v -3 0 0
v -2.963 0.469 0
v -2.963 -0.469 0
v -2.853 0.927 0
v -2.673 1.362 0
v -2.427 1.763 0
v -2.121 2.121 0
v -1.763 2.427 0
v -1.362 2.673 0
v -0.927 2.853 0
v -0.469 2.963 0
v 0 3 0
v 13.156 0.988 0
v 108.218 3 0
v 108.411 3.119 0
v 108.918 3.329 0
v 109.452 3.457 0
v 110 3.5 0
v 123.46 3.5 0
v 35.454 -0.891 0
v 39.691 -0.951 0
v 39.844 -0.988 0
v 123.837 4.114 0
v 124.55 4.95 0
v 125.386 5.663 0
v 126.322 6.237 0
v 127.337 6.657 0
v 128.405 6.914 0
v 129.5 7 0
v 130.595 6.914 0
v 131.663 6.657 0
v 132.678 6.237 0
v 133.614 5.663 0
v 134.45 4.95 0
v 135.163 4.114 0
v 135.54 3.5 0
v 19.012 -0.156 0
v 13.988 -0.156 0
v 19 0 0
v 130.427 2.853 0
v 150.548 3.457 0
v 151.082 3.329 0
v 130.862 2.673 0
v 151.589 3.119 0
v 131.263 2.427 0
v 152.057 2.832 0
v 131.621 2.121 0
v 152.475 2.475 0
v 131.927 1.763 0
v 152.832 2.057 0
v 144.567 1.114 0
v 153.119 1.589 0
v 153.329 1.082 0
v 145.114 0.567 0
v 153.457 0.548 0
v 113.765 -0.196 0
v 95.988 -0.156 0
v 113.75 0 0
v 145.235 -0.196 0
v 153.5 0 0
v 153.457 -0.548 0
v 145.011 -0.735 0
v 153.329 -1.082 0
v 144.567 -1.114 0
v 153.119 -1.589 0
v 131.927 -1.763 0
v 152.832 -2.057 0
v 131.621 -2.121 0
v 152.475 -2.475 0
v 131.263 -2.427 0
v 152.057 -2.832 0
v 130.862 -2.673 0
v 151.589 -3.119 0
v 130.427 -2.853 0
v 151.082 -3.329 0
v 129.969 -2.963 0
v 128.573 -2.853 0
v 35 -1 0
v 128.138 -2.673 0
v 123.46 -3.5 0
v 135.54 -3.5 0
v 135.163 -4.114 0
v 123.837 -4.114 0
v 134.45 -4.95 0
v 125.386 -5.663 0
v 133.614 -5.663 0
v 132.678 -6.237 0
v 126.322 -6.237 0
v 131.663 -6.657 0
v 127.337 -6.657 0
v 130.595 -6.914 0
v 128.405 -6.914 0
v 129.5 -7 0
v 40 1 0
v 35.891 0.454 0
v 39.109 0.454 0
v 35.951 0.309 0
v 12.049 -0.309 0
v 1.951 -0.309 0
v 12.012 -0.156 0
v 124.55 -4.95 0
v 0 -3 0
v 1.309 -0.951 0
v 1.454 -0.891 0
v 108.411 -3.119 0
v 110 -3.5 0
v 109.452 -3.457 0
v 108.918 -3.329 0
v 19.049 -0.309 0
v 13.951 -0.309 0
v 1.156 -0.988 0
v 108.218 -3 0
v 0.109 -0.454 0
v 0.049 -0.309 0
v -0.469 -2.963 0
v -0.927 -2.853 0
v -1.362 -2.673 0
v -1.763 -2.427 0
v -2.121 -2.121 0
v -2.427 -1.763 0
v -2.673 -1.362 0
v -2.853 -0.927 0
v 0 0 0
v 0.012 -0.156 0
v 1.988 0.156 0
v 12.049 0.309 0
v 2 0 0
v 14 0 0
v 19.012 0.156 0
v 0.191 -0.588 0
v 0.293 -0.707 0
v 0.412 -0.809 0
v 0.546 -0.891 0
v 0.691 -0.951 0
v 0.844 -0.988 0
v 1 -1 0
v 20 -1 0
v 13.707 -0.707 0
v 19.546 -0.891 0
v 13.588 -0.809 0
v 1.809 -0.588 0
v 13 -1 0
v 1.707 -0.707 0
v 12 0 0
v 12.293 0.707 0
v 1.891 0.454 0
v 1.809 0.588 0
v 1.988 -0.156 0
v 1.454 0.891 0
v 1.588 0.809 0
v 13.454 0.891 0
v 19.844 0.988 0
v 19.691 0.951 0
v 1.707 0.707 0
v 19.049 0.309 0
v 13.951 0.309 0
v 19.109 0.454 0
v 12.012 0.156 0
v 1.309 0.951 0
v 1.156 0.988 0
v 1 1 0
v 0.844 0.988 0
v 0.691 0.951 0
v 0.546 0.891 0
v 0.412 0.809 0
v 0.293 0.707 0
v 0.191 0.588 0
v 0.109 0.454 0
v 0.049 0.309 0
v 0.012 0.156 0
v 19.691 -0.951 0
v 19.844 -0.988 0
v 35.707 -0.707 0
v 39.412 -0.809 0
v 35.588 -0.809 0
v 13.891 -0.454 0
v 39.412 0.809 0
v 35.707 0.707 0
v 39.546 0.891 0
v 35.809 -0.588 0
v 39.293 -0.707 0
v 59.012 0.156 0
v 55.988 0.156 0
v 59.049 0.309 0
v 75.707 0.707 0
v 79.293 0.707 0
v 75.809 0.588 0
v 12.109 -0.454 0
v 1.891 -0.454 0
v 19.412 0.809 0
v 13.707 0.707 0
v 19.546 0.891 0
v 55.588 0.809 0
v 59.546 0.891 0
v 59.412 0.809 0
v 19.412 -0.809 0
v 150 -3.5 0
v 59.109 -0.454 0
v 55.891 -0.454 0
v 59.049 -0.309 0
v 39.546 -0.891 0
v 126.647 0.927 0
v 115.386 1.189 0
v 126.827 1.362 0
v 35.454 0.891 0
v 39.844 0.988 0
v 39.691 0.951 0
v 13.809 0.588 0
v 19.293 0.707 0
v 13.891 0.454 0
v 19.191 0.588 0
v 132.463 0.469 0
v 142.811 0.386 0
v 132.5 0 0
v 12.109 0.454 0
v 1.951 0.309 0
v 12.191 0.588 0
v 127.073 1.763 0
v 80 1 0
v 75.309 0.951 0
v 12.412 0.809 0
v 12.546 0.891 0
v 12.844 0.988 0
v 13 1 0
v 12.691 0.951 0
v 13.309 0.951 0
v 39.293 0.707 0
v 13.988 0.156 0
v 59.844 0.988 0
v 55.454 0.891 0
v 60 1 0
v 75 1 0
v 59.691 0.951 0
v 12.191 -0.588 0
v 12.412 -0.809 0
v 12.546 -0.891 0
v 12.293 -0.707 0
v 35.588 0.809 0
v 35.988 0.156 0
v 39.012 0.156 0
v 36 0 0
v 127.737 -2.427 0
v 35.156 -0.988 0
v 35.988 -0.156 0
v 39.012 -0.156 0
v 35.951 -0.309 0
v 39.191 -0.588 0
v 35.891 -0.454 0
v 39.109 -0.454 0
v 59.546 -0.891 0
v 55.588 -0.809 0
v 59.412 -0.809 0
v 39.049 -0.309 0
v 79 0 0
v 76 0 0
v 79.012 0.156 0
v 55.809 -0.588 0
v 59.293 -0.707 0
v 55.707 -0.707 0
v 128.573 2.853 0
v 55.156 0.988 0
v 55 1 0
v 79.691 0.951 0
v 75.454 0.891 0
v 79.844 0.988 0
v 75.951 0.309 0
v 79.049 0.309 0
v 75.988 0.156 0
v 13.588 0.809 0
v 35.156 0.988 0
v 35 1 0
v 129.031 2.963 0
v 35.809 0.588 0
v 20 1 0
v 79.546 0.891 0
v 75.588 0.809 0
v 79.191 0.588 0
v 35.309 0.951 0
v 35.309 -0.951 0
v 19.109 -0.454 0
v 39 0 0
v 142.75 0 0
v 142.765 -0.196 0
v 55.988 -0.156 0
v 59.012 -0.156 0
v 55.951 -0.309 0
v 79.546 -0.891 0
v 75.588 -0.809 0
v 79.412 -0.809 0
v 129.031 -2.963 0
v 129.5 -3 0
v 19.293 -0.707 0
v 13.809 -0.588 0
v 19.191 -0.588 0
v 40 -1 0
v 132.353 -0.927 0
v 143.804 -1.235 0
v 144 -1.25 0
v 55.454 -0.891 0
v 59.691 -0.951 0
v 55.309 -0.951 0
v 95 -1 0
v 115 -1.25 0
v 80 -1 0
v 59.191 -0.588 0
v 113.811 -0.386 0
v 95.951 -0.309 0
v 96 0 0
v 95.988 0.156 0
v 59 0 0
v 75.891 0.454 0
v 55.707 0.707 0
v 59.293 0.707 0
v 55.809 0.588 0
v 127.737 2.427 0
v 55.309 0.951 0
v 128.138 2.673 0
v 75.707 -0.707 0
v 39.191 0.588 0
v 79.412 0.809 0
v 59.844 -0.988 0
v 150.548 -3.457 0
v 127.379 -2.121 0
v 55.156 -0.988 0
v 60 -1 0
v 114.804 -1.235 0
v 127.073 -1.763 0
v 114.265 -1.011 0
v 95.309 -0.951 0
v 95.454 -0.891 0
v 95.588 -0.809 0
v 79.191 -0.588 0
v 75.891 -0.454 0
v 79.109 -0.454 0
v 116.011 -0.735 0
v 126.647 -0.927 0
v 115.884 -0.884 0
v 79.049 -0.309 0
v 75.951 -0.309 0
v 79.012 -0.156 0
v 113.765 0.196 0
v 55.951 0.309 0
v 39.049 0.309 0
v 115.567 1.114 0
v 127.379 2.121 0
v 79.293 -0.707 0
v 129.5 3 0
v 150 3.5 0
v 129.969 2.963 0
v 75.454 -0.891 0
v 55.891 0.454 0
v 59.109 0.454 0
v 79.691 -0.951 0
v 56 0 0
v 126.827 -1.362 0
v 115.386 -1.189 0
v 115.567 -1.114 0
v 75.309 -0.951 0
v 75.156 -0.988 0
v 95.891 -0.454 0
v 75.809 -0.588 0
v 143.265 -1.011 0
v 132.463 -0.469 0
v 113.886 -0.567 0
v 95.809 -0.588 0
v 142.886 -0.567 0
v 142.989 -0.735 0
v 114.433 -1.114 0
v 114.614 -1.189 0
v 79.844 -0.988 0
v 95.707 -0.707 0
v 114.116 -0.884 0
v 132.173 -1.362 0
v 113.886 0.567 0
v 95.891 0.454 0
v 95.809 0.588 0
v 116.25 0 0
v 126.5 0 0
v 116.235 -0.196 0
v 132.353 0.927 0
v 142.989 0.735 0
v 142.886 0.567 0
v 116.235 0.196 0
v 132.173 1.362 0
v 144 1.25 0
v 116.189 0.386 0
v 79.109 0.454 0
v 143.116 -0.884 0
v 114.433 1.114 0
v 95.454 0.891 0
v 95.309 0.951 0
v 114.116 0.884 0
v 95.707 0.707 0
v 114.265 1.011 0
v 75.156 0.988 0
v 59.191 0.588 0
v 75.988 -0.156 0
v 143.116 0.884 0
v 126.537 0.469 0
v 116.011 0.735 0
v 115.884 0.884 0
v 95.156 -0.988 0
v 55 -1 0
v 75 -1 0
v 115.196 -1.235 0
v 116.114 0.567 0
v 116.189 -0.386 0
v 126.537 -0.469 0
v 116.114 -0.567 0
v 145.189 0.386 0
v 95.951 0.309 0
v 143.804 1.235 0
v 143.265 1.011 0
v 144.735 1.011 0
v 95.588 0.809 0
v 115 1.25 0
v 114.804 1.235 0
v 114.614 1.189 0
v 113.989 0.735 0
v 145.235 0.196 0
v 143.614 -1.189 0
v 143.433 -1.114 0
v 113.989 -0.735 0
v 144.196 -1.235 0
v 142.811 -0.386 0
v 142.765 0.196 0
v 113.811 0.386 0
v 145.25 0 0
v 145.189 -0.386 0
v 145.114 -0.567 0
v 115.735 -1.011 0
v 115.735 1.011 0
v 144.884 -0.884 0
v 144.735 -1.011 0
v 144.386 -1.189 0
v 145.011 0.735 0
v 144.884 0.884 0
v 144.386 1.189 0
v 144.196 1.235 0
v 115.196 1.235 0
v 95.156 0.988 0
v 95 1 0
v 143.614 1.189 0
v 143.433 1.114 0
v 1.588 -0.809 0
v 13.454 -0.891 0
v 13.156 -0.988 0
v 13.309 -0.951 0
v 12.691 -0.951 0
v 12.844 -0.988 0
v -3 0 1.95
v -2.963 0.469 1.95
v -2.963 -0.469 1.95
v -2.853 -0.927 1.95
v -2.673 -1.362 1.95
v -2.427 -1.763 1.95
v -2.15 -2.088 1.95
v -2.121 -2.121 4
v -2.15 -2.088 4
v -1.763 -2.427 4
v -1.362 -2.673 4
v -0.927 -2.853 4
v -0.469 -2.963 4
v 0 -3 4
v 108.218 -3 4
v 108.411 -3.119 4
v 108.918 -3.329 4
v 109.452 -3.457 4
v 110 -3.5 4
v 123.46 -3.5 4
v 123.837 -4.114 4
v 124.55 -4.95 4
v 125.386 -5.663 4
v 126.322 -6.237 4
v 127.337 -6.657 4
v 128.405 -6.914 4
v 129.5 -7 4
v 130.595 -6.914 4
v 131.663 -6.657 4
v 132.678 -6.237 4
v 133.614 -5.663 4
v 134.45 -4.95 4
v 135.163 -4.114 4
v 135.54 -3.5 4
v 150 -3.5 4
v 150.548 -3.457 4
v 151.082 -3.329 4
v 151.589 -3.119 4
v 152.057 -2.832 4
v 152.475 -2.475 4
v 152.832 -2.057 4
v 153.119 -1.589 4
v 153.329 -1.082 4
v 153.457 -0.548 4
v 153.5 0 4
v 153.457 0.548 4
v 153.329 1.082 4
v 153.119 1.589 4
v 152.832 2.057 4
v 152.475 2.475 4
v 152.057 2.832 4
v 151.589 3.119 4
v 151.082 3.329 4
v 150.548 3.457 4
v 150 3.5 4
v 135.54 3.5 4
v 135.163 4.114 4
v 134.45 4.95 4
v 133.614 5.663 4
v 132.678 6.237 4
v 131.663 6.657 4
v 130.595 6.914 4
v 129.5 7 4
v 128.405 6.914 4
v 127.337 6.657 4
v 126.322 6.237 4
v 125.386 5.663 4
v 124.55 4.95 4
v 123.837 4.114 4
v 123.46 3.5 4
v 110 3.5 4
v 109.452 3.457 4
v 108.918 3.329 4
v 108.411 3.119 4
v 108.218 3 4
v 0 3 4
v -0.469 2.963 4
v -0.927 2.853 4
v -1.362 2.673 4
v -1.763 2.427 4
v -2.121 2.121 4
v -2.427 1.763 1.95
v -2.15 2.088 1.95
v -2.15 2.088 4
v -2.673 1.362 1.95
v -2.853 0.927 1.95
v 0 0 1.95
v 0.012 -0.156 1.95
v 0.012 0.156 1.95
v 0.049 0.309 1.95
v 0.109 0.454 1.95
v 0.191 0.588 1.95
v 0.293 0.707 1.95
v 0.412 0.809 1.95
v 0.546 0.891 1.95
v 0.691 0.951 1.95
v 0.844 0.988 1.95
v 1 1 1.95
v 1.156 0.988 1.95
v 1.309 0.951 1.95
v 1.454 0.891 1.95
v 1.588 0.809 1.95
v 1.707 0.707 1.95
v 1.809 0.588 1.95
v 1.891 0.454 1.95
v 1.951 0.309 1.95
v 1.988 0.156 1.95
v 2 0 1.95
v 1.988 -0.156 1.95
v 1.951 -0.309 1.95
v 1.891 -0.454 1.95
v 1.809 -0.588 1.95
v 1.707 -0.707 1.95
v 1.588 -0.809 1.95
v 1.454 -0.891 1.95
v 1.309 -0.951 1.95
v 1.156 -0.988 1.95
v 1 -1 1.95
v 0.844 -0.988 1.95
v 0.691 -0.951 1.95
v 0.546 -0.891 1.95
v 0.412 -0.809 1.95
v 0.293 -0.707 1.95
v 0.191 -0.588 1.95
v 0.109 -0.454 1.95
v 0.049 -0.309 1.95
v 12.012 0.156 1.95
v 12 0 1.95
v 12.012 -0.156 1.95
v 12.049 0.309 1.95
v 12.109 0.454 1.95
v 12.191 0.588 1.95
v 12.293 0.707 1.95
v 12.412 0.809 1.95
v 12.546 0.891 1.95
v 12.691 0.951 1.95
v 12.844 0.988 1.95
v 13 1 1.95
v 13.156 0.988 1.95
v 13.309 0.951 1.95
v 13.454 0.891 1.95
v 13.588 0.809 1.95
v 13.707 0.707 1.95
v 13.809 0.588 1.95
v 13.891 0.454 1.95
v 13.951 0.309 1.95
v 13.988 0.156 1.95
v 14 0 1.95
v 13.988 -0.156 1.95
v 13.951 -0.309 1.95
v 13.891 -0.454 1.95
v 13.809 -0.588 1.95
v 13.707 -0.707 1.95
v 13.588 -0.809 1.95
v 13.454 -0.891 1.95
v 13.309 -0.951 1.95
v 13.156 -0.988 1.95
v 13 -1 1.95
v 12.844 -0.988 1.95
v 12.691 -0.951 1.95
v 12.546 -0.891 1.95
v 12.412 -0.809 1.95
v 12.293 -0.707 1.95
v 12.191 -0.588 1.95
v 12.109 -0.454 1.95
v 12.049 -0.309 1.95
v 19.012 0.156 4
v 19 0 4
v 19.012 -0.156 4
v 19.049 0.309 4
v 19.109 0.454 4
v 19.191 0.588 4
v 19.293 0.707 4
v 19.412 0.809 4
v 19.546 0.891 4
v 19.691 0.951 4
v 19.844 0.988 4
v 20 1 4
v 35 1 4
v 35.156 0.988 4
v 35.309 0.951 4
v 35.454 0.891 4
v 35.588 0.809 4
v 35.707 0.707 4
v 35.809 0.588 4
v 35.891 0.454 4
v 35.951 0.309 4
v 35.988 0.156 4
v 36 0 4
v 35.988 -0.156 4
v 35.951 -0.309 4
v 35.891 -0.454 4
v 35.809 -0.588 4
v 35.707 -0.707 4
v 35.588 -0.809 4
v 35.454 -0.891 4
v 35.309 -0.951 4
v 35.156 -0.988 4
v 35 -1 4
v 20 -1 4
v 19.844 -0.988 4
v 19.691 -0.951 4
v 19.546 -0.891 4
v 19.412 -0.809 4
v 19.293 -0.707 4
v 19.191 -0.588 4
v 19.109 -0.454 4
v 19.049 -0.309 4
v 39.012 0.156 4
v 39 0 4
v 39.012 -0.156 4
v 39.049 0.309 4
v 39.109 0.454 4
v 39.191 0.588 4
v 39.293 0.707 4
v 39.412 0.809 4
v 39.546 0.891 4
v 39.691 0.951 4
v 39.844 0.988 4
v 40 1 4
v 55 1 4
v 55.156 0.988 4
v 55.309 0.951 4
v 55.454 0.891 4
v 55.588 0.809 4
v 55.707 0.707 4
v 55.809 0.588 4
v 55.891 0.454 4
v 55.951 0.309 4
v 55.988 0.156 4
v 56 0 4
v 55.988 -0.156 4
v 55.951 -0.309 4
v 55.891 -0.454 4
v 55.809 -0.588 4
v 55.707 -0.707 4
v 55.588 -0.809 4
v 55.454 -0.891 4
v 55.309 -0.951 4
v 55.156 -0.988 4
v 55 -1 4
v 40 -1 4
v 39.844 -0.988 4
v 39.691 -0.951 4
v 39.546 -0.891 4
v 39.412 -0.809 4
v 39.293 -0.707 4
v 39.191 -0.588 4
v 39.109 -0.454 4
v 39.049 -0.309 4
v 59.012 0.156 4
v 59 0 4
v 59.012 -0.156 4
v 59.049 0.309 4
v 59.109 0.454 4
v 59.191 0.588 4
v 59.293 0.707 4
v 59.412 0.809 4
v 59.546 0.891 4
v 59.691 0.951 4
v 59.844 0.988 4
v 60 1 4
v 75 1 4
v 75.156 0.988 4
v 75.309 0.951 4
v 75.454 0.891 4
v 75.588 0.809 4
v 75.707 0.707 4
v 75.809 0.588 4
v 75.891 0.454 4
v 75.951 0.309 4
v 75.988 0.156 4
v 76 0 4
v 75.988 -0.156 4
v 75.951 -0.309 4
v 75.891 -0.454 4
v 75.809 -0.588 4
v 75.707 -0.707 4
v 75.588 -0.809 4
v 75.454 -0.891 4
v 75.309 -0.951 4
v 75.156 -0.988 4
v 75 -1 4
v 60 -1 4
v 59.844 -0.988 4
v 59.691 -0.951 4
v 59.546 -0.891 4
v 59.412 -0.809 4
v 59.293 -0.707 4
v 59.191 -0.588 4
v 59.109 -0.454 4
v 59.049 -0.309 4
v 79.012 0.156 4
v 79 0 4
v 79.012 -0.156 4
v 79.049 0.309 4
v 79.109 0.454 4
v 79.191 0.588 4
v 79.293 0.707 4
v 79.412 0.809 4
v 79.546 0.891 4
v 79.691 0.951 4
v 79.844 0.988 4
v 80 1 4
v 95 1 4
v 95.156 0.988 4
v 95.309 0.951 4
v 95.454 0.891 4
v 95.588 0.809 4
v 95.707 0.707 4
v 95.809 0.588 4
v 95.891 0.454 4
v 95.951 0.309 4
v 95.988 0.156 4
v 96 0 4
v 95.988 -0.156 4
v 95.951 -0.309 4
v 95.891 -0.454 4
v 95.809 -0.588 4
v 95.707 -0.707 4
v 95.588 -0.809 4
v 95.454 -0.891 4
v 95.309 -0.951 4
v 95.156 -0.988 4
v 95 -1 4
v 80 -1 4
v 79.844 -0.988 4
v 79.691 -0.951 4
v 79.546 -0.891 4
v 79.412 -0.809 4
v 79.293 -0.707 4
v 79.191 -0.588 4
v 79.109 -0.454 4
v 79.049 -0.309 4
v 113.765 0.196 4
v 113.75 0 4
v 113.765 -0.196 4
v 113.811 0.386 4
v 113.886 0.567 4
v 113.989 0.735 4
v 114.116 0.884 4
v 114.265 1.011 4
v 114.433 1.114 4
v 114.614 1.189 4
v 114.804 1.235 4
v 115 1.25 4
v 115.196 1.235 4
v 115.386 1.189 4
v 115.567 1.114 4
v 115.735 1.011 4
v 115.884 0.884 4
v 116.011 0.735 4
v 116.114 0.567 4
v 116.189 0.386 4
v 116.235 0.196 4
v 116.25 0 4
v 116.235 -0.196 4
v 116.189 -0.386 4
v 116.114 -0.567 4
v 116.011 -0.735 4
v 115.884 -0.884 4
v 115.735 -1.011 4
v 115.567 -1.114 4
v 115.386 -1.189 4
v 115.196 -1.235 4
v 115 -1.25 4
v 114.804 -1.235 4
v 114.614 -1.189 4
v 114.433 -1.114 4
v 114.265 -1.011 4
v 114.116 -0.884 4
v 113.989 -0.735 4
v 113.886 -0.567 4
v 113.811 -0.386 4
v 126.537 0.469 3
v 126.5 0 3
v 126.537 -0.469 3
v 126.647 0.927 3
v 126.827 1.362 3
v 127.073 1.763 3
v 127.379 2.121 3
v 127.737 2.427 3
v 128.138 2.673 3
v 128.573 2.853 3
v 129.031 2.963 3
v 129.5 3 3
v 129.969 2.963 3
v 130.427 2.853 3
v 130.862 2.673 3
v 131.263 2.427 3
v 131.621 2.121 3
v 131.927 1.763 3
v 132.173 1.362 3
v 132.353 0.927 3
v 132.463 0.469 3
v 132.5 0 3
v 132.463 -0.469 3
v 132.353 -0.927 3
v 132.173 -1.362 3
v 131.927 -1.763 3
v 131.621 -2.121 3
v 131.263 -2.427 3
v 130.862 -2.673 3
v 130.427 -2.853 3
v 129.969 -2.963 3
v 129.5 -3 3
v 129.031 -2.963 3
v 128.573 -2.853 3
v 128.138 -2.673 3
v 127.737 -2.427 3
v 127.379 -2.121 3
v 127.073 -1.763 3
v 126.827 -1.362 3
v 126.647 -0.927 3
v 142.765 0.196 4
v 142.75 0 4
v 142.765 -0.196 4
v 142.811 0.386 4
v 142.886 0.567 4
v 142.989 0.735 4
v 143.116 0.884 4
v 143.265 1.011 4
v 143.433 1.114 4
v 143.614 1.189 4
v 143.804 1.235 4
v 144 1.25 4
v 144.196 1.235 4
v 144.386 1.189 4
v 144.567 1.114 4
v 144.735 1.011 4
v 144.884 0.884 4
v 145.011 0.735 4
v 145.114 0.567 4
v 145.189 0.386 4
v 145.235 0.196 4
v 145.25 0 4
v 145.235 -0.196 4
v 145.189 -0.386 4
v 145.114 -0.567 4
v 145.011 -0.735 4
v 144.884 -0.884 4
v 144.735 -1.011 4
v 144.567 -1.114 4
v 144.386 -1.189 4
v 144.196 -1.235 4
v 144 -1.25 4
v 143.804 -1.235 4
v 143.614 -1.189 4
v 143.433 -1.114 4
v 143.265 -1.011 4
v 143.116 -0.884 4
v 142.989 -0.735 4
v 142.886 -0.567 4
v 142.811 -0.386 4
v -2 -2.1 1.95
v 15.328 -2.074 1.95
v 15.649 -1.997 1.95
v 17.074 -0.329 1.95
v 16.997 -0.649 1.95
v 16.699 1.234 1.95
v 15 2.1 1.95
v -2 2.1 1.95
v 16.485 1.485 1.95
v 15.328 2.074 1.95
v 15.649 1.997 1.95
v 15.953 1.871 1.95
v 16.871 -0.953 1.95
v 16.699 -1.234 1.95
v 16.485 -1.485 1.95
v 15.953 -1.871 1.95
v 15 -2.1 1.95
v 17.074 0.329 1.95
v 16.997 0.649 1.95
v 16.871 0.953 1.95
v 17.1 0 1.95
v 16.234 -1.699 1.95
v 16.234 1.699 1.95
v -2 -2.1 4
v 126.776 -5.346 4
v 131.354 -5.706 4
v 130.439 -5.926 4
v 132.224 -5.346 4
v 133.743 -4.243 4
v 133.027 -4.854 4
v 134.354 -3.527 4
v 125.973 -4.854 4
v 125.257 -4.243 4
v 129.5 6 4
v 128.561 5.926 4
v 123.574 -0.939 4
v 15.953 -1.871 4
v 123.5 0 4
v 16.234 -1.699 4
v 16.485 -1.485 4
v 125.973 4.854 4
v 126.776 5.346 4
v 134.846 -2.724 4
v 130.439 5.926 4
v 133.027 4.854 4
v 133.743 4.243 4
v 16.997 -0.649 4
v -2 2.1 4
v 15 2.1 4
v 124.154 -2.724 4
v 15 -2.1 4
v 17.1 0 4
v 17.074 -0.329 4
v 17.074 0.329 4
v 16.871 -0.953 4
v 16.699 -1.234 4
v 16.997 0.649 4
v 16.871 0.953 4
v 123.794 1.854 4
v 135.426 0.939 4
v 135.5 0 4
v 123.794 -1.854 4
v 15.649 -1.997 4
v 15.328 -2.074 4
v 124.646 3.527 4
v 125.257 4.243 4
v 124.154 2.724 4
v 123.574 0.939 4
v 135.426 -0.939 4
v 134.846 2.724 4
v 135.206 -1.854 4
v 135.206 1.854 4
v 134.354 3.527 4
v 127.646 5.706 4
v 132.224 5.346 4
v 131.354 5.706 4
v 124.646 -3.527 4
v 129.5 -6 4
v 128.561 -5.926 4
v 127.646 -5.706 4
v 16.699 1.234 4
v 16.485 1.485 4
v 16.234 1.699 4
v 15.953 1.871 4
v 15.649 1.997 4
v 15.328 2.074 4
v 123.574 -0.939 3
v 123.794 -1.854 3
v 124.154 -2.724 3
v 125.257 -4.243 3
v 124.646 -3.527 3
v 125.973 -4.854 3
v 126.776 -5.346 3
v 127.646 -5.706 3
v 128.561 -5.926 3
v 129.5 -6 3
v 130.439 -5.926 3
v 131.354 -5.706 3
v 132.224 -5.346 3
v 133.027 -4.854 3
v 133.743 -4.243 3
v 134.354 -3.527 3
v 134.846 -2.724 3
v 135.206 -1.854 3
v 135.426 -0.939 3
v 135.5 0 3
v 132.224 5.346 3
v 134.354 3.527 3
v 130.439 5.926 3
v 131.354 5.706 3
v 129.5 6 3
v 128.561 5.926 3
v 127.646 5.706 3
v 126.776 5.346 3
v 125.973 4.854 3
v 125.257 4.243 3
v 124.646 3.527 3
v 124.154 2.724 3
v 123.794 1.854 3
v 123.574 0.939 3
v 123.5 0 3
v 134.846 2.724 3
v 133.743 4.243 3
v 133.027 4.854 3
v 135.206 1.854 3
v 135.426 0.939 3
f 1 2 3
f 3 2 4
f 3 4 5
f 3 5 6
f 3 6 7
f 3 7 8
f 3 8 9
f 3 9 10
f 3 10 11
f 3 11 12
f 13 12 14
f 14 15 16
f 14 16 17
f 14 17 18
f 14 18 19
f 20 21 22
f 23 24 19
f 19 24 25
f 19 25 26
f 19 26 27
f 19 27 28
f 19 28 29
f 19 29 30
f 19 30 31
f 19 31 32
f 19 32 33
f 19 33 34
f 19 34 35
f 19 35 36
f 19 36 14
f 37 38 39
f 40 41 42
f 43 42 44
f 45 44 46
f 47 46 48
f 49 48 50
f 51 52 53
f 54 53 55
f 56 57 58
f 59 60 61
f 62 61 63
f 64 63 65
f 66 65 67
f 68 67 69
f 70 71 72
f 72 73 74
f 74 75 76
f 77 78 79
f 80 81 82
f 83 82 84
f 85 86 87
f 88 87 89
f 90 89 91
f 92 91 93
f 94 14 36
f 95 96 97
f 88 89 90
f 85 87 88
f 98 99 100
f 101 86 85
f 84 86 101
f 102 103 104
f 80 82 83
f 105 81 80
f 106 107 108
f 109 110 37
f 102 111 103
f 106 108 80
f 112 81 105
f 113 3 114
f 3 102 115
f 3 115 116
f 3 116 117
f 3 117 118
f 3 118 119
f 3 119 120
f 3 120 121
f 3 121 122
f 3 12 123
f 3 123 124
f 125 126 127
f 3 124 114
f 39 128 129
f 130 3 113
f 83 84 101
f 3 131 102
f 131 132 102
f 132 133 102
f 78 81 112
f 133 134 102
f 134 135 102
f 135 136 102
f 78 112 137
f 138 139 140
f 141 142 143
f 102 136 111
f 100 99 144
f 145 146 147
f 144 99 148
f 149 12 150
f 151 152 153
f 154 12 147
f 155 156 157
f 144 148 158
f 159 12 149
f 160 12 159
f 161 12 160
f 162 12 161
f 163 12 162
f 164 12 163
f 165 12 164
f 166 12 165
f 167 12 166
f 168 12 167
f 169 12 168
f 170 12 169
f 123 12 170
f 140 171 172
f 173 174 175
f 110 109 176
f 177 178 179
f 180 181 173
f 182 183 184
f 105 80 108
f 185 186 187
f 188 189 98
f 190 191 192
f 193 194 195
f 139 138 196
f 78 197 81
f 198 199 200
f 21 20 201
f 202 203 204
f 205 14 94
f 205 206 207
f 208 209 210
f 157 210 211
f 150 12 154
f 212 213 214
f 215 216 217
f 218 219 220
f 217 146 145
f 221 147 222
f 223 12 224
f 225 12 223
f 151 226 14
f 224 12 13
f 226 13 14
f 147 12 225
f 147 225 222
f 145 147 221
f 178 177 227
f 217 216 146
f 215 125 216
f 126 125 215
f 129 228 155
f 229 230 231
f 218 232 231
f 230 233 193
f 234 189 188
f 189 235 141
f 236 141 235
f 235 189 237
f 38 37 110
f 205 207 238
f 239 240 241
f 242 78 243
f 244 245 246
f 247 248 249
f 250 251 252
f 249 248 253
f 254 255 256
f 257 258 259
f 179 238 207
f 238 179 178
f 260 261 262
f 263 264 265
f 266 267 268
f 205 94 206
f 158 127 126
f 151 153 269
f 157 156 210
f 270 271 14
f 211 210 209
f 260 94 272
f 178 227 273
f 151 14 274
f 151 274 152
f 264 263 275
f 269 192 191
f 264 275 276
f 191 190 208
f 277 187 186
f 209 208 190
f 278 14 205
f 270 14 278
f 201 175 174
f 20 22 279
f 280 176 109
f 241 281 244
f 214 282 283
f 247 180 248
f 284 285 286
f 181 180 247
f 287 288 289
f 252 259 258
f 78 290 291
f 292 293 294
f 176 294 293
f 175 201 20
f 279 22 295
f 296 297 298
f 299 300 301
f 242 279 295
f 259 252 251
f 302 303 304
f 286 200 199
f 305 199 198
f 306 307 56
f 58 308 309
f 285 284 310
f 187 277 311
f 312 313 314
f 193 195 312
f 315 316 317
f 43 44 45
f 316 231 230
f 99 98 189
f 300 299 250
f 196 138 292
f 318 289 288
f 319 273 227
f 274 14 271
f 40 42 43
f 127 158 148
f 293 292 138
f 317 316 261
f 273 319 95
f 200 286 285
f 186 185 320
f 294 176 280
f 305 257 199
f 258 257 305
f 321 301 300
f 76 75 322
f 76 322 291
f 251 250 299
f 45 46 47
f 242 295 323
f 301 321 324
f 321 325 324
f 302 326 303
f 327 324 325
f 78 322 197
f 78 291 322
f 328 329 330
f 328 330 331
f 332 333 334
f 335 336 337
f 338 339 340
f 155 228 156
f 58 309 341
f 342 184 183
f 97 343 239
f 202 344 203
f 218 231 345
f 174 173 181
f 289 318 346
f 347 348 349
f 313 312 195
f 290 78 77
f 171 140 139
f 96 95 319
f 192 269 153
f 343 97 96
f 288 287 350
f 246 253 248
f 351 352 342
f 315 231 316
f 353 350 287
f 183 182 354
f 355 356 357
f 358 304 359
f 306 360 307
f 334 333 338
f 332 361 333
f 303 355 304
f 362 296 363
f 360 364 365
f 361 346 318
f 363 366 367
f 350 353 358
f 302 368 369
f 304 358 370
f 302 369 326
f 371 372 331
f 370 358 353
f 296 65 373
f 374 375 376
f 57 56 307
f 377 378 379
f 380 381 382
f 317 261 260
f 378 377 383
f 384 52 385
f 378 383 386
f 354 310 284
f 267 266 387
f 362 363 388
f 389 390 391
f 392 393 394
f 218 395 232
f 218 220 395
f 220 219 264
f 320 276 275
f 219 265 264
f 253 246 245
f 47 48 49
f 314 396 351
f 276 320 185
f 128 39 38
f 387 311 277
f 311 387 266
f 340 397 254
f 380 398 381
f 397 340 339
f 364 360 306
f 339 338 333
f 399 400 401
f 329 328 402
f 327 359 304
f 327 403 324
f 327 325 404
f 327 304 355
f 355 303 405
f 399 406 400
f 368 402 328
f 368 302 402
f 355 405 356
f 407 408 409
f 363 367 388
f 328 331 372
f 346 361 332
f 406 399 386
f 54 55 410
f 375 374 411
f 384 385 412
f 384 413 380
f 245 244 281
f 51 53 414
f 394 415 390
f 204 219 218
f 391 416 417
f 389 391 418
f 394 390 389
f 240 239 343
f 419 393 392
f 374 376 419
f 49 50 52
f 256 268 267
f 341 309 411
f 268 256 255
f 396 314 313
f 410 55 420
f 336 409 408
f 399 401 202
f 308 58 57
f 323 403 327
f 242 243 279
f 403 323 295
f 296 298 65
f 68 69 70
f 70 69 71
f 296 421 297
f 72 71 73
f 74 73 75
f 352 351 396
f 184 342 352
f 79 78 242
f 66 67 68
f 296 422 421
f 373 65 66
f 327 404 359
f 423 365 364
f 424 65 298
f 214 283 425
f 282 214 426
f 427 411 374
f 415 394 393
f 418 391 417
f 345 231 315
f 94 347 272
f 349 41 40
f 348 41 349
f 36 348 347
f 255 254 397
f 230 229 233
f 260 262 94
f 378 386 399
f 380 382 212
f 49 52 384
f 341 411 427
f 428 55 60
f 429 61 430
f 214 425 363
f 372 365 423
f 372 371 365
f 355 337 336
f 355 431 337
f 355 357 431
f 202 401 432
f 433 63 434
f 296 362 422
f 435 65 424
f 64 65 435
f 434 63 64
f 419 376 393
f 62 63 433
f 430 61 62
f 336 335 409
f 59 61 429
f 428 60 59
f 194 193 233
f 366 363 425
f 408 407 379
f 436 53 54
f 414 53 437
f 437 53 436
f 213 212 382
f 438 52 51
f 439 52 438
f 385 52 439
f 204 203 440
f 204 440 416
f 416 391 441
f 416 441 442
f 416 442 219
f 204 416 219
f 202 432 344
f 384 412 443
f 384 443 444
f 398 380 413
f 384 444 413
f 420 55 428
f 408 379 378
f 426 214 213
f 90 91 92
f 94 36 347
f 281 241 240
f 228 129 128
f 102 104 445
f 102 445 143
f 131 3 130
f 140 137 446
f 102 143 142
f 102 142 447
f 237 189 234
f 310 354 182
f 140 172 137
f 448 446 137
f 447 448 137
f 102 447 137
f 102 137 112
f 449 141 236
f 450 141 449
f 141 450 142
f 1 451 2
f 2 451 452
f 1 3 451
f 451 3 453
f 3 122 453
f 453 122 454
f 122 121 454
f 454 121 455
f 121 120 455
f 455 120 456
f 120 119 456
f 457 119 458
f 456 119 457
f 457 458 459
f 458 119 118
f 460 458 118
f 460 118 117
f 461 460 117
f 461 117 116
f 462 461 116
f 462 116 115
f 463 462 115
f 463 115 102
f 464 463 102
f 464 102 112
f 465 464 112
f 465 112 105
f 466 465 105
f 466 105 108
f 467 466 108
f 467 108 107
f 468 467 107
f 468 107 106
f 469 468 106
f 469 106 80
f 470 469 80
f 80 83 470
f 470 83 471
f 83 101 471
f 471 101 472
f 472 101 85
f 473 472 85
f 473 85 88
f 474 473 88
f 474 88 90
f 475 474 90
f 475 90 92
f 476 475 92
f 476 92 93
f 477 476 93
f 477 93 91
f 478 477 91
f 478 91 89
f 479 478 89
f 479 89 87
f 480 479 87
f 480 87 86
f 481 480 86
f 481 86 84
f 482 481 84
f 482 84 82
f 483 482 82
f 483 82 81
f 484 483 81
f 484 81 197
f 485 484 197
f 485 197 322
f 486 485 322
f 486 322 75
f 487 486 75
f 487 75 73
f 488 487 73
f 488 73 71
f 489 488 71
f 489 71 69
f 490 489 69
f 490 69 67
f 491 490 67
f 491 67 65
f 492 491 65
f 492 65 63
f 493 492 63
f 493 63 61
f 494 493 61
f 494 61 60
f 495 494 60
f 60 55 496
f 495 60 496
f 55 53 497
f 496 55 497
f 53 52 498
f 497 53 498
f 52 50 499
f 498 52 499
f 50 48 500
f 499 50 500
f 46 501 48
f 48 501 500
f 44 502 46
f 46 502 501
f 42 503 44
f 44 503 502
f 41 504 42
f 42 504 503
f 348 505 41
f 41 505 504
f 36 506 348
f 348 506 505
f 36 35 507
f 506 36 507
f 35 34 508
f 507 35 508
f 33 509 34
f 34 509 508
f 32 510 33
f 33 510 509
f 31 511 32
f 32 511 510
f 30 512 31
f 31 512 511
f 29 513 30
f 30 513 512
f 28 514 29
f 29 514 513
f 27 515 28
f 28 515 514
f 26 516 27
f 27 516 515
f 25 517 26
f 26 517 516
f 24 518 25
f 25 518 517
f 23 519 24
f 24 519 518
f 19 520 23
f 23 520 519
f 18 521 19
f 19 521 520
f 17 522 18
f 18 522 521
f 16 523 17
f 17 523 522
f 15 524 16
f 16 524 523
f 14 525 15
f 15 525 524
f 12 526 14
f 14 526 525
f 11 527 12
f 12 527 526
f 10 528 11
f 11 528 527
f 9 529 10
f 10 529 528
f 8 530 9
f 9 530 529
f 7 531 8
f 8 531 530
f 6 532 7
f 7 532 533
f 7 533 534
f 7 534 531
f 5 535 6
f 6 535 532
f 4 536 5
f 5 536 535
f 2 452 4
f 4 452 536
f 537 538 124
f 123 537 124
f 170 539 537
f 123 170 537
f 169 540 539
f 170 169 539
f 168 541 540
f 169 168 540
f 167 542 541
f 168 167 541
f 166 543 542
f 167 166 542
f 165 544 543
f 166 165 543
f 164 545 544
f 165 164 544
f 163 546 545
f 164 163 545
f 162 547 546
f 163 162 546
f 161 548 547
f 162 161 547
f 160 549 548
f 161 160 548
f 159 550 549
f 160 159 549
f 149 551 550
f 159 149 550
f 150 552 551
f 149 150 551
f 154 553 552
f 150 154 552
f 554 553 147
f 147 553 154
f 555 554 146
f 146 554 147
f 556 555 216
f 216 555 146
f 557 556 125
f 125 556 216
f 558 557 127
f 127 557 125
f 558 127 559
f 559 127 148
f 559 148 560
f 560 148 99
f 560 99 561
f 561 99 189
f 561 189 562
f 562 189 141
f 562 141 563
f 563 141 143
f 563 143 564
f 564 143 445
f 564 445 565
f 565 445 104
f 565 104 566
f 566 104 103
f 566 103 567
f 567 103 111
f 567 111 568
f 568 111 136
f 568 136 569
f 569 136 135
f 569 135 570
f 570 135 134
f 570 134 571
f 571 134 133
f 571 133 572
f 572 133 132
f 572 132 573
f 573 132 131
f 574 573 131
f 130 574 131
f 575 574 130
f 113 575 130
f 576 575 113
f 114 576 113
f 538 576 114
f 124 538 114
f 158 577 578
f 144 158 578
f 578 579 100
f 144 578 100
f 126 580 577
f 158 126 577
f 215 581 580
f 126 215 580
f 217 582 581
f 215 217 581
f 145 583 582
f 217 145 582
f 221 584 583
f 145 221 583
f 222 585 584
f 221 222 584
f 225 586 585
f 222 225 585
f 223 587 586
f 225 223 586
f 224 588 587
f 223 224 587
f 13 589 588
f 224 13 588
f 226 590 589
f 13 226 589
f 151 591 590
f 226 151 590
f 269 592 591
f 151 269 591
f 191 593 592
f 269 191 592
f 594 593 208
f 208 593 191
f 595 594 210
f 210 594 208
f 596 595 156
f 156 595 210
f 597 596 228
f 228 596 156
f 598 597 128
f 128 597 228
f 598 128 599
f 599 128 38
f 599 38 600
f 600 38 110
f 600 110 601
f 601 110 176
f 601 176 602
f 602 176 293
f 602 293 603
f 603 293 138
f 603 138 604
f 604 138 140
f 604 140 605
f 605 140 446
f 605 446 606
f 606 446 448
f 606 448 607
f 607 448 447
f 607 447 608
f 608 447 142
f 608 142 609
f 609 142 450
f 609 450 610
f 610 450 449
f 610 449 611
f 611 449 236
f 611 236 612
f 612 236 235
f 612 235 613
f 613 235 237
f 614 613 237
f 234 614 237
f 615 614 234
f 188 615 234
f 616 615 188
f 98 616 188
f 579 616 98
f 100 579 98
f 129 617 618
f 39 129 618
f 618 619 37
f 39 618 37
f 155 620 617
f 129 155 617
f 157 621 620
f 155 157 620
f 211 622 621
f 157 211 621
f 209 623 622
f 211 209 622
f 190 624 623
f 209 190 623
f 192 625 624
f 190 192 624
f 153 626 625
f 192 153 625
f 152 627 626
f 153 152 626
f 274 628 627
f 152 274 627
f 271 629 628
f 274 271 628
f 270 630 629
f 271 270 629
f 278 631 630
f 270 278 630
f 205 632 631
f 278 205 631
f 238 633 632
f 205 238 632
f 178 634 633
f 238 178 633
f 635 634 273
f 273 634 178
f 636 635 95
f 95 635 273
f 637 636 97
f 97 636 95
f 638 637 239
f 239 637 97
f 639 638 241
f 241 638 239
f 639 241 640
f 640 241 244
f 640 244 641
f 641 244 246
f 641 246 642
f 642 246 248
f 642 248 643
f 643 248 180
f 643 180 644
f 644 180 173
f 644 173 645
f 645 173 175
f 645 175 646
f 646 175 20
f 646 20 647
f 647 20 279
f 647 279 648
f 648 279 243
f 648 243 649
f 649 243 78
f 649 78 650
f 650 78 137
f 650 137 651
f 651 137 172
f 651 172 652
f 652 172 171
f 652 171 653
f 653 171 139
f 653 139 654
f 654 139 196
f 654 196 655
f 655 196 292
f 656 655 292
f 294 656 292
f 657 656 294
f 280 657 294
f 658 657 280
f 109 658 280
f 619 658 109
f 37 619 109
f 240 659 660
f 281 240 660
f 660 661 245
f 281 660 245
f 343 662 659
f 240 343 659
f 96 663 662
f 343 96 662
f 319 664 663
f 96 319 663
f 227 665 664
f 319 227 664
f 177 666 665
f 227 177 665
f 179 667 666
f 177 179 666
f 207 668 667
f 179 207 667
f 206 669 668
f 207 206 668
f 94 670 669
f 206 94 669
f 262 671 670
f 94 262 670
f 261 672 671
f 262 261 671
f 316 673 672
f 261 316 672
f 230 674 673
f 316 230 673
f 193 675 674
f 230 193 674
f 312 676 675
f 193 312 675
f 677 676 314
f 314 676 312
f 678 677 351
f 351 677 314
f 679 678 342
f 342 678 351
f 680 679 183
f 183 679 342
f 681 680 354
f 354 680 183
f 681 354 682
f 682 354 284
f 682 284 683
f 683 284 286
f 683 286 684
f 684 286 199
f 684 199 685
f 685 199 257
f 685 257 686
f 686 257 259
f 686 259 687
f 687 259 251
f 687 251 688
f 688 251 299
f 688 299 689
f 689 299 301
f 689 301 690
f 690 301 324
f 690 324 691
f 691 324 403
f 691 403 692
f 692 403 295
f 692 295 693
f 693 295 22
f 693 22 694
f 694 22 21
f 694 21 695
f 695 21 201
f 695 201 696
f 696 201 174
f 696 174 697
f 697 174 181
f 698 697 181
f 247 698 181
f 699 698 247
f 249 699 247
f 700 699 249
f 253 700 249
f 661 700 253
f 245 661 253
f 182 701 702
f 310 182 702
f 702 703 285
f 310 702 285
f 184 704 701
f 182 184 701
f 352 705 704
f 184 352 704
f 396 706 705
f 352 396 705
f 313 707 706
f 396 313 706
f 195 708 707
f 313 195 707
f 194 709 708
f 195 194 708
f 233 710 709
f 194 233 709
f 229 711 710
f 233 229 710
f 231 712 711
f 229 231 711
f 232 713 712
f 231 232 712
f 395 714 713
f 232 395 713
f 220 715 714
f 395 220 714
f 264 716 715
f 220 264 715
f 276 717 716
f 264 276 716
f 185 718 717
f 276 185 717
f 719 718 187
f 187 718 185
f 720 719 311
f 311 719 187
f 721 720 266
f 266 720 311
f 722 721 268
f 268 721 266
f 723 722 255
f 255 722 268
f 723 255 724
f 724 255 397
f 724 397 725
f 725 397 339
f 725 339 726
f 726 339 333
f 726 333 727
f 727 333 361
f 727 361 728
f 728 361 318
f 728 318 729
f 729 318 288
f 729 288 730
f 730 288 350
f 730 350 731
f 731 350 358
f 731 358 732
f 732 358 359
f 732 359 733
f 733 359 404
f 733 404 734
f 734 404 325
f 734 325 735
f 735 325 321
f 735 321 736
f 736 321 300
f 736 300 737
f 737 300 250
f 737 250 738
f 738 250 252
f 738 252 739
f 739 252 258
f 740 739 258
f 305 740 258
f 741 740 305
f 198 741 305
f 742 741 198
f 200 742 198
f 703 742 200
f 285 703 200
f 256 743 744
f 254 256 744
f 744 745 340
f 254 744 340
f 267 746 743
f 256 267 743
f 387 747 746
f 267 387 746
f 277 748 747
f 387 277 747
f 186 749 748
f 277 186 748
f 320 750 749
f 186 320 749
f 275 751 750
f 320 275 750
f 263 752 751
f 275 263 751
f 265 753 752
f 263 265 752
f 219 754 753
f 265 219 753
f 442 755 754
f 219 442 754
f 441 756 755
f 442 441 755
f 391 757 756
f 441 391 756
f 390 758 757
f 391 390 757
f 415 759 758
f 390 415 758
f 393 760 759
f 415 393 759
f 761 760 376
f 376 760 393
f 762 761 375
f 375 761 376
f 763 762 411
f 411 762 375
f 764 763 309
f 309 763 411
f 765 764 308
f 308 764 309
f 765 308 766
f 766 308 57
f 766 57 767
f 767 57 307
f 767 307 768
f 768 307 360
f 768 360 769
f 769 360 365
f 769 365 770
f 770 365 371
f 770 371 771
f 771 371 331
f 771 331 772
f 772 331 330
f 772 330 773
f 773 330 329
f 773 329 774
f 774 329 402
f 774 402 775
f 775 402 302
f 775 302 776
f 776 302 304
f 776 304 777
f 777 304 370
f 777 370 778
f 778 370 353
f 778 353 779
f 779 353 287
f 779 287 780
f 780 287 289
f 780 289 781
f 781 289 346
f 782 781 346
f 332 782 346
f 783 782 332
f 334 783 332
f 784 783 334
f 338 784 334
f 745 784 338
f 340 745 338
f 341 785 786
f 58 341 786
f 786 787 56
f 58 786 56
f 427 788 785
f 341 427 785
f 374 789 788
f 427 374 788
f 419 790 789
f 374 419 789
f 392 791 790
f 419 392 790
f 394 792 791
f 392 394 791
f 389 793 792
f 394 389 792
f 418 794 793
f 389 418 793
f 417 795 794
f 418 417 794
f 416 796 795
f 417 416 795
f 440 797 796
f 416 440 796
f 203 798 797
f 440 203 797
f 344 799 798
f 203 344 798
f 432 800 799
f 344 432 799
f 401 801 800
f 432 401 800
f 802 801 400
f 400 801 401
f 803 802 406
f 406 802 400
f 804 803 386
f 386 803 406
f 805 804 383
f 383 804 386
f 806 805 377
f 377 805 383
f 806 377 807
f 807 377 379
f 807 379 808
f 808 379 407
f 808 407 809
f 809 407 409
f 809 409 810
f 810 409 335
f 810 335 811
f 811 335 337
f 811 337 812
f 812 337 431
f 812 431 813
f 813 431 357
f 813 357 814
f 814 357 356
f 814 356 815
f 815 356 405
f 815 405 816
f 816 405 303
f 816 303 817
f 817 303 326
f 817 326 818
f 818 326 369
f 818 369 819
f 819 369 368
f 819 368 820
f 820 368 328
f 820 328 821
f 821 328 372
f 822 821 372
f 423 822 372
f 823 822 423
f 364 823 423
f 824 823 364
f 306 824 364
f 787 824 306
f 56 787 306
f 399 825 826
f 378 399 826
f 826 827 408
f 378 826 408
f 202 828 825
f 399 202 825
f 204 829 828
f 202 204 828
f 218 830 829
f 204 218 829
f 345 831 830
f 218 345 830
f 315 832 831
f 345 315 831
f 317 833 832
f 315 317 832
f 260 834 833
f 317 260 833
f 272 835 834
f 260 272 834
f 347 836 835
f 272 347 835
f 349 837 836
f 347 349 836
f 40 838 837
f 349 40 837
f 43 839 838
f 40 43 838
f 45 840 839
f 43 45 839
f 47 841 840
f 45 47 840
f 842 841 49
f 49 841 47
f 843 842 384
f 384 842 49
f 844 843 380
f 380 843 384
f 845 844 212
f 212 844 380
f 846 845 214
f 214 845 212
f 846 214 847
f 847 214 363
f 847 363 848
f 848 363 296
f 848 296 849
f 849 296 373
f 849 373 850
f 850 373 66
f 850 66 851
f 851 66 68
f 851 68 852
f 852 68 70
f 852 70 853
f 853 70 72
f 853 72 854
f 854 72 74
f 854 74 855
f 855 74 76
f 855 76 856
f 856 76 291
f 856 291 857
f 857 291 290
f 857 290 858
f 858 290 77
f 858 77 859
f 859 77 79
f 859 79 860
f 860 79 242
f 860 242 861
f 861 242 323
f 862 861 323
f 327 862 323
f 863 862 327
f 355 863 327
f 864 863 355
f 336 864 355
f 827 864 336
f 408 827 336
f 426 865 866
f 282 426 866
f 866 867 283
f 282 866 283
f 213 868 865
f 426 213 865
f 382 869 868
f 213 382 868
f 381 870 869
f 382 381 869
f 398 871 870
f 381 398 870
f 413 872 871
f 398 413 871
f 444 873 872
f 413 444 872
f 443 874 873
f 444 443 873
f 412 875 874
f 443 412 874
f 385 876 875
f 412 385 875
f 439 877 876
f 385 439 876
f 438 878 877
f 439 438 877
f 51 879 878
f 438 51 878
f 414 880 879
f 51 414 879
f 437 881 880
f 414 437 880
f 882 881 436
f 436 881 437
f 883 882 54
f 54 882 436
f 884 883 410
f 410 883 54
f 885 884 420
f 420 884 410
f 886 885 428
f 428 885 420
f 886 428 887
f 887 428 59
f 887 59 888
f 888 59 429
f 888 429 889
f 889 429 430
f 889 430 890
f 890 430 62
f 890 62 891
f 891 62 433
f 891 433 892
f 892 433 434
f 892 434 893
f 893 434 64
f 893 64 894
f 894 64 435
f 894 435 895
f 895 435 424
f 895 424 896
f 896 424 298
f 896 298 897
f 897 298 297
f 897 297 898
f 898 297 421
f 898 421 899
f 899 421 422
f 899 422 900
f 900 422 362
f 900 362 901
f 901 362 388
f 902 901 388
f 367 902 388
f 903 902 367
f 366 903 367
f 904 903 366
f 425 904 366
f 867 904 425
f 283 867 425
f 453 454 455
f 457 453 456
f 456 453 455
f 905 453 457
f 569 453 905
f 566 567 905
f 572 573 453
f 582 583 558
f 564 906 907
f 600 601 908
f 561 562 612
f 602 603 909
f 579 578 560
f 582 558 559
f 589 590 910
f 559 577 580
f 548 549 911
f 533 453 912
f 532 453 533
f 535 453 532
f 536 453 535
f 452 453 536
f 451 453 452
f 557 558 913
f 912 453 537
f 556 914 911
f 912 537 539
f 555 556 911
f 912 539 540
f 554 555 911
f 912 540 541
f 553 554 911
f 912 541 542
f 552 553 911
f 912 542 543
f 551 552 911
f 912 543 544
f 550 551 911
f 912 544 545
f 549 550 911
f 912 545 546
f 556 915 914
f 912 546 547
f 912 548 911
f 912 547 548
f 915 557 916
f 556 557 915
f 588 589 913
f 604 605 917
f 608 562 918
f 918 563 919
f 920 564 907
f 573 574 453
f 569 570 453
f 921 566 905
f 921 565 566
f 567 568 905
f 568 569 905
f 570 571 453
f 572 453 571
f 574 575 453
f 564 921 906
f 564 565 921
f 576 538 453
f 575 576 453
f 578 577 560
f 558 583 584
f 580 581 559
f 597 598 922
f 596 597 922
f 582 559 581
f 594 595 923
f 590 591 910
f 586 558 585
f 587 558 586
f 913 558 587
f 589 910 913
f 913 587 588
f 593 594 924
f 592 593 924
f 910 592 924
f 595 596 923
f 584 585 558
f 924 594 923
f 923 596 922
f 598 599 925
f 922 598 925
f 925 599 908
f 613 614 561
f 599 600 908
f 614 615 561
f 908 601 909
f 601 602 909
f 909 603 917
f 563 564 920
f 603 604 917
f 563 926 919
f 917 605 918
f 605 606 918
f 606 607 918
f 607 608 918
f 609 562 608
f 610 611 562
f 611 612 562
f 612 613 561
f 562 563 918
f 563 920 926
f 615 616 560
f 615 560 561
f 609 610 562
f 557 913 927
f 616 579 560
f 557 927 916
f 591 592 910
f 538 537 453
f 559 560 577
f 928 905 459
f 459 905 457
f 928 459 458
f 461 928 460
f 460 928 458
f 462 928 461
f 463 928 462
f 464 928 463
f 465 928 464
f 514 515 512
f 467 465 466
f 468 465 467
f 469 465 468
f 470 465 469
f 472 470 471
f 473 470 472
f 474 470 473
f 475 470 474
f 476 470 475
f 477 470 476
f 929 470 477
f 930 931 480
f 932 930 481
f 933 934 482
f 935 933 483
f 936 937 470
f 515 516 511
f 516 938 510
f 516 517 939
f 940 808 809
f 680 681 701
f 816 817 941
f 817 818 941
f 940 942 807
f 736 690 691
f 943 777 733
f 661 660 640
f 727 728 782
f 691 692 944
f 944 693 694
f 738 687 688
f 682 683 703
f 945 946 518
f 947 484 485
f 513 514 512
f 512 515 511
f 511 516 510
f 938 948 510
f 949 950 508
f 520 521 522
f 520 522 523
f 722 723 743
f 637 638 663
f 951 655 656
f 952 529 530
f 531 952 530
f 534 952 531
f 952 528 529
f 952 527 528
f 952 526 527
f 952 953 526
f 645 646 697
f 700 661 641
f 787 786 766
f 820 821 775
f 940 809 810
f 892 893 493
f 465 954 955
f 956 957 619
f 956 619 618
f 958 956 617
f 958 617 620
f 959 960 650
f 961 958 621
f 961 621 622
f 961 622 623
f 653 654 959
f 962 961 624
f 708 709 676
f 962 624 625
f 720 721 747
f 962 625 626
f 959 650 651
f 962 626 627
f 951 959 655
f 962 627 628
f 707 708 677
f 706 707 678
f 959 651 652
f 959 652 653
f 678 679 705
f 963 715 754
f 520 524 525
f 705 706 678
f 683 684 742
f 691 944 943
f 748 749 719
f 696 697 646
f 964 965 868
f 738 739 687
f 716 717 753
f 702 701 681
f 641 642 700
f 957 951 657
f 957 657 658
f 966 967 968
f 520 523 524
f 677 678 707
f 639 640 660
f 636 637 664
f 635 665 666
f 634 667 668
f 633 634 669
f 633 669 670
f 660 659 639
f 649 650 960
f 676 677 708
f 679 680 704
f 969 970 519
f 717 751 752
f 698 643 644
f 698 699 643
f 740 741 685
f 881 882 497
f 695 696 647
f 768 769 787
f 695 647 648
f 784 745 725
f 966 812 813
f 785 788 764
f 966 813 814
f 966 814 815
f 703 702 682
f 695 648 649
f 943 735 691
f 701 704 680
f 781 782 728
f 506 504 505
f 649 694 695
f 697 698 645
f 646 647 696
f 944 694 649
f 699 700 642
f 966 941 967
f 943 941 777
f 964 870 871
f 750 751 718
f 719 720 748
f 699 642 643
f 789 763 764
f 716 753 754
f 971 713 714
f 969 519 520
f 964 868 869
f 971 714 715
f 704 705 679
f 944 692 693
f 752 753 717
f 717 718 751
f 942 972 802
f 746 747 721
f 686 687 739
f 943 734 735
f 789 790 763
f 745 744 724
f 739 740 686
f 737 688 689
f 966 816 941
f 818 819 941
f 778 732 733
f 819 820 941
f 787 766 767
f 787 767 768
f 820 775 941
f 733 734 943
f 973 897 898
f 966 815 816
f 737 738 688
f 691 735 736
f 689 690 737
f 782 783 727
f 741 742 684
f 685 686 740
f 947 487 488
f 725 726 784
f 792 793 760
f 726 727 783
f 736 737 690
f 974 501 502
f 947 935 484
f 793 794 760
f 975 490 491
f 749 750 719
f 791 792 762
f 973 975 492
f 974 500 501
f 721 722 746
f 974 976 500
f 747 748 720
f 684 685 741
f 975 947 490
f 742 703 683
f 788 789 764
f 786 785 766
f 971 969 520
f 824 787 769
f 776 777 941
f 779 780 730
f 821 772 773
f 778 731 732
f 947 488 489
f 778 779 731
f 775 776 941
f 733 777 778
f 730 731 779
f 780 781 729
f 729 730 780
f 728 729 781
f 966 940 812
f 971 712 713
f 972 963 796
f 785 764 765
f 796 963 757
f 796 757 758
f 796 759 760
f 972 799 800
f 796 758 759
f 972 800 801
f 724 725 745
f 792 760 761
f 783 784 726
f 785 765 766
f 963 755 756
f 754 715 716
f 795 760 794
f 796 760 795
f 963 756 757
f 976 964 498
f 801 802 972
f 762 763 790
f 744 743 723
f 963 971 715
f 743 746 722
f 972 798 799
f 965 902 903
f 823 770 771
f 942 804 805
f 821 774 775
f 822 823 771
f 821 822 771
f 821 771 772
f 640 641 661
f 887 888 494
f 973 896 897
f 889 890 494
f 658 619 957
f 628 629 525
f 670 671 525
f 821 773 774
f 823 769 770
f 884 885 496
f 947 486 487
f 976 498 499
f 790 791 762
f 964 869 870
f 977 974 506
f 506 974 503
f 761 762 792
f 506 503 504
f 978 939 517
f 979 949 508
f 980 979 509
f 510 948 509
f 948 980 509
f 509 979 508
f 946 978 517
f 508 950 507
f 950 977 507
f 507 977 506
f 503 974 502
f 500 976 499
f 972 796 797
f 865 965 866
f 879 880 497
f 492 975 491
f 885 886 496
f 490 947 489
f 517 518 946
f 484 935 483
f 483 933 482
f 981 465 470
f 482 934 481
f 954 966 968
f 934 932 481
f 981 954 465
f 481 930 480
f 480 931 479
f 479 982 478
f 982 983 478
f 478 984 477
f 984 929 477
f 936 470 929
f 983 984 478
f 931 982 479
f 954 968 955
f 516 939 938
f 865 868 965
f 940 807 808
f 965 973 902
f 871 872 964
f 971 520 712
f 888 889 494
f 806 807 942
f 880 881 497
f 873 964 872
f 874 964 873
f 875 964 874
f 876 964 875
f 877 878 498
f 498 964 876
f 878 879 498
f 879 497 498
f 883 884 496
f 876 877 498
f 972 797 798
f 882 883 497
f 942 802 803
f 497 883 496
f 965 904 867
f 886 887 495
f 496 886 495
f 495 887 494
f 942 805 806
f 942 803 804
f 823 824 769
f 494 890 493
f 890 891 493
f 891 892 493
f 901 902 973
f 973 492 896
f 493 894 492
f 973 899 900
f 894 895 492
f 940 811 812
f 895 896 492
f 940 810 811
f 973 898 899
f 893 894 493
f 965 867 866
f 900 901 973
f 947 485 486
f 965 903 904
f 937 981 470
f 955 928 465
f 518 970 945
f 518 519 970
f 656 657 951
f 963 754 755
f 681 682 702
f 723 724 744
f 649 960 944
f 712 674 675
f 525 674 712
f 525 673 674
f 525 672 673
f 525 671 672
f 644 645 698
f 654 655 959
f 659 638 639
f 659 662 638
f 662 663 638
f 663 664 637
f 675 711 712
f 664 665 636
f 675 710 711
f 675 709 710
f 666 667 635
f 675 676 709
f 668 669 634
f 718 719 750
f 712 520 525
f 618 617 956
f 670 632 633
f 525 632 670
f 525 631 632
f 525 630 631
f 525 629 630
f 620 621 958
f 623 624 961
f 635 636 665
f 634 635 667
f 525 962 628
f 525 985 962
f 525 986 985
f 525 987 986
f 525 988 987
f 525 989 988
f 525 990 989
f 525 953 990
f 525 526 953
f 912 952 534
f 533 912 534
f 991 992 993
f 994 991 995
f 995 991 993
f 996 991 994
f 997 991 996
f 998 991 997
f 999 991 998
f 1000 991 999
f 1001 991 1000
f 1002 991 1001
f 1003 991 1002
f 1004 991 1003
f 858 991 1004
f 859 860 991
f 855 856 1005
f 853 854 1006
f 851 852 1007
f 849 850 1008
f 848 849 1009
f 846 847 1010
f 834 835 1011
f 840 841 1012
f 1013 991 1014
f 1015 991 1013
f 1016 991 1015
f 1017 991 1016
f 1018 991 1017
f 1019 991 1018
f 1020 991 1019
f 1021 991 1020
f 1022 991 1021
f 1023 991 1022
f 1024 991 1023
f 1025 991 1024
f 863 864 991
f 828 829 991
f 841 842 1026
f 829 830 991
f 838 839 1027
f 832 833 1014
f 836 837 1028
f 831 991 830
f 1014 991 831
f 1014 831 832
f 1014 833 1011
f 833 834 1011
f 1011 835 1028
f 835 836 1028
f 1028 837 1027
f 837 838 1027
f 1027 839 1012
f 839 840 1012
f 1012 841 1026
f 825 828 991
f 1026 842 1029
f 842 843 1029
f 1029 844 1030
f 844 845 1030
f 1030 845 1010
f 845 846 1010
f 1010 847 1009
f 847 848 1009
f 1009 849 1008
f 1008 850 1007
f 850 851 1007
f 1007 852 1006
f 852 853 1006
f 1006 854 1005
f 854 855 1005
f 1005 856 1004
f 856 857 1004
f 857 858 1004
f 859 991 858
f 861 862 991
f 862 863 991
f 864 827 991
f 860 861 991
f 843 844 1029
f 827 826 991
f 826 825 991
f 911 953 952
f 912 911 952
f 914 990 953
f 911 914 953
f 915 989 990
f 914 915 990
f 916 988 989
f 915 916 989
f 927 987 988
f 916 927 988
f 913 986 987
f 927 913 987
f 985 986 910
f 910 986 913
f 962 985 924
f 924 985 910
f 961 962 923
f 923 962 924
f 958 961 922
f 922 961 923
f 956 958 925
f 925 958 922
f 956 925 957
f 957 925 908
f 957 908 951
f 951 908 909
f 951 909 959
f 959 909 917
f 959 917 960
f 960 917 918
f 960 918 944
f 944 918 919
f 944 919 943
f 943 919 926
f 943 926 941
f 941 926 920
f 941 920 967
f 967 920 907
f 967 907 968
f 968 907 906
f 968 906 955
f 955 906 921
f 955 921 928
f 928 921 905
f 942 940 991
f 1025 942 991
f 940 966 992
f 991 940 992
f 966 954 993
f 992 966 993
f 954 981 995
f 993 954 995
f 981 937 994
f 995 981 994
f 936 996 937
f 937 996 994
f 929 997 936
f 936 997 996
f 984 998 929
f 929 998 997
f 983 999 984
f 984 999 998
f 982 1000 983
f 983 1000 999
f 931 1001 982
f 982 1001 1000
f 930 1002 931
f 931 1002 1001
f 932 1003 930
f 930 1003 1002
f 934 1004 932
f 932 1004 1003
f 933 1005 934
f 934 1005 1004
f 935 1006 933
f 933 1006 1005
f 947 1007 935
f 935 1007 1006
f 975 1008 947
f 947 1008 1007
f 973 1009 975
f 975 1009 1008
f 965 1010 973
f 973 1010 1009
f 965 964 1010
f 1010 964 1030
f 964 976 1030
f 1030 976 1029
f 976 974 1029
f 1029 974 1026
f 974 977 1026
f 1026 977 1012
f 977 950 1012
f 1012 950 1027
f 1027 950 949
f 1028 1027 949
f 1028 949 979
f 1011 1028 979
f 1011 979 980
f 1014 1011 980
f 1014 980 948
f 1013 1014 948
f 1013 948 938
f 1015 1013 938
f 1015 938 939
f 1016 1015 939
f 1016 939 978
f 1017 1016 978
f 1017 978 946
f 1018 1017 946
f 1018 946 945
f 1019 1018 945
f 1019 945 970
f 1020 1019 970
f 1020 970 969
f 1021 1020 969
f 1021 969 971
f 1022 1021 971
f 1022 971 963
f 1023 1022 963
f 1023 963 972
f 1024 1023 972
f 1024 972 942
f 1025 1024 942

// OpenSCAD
$fn = 40;




union() {
	difference() {
		hull() {
			translate([110,0,0]) cylinder(h = 4, r=3);
			translate([0,0,0]) cylinder(h = 4, r=3);
		}

		translate([-2,0,1.95]) slit(17,2.1);		

		union() { // screw hols
			translate([13,0,-0.5]) cylinder(h = 6, r=2/2);
			translate([1,0,-0.5]) cylinder(h = 6, r=2/2);	
		}

		union() {
			translate([20,0,-1])  {
				slit(15,1);
			}

			translate([40,0,-1])  {
				slit(15,1);
			}

			translate([60,0,-1])  {
				slit(15,1);
			}	

			translate([80,0,-1])  {
				slit(15,1);
			}	
		}

		
	}


	difference() {
		union() {
			hull() {
				translate([150,0,0]) cylinder(h = 4, r=3.5);
				translate([110,0,0]) cylinder(h = 4, r=3.5);
			}
			translate([115+29/2,0,0]) cylinder(h = 4, r=(14/2));
		}
 		
		translate([115,0,0]) {
			union() {
				translate([0,0,-1]) cylinder(h = 6, r=(2.5/2));
				translate([29/2,0,3]) cylinder(h = 2, r=(12/2));
				translate([29/2,0,-1]) cylinder(h = 5, r=(6/2));
				translate([29,0,-1]) cylinder(h = 6, r=(2.5/2));	
			}
		}	
	}
}


module slit(length,radius) {
	hull() {
		translate([length,0,0]) cylinder(h = 6, r=radius);
		translate([0,0,0]) cylinder(h = 6, r=radius);
	}
}


	
